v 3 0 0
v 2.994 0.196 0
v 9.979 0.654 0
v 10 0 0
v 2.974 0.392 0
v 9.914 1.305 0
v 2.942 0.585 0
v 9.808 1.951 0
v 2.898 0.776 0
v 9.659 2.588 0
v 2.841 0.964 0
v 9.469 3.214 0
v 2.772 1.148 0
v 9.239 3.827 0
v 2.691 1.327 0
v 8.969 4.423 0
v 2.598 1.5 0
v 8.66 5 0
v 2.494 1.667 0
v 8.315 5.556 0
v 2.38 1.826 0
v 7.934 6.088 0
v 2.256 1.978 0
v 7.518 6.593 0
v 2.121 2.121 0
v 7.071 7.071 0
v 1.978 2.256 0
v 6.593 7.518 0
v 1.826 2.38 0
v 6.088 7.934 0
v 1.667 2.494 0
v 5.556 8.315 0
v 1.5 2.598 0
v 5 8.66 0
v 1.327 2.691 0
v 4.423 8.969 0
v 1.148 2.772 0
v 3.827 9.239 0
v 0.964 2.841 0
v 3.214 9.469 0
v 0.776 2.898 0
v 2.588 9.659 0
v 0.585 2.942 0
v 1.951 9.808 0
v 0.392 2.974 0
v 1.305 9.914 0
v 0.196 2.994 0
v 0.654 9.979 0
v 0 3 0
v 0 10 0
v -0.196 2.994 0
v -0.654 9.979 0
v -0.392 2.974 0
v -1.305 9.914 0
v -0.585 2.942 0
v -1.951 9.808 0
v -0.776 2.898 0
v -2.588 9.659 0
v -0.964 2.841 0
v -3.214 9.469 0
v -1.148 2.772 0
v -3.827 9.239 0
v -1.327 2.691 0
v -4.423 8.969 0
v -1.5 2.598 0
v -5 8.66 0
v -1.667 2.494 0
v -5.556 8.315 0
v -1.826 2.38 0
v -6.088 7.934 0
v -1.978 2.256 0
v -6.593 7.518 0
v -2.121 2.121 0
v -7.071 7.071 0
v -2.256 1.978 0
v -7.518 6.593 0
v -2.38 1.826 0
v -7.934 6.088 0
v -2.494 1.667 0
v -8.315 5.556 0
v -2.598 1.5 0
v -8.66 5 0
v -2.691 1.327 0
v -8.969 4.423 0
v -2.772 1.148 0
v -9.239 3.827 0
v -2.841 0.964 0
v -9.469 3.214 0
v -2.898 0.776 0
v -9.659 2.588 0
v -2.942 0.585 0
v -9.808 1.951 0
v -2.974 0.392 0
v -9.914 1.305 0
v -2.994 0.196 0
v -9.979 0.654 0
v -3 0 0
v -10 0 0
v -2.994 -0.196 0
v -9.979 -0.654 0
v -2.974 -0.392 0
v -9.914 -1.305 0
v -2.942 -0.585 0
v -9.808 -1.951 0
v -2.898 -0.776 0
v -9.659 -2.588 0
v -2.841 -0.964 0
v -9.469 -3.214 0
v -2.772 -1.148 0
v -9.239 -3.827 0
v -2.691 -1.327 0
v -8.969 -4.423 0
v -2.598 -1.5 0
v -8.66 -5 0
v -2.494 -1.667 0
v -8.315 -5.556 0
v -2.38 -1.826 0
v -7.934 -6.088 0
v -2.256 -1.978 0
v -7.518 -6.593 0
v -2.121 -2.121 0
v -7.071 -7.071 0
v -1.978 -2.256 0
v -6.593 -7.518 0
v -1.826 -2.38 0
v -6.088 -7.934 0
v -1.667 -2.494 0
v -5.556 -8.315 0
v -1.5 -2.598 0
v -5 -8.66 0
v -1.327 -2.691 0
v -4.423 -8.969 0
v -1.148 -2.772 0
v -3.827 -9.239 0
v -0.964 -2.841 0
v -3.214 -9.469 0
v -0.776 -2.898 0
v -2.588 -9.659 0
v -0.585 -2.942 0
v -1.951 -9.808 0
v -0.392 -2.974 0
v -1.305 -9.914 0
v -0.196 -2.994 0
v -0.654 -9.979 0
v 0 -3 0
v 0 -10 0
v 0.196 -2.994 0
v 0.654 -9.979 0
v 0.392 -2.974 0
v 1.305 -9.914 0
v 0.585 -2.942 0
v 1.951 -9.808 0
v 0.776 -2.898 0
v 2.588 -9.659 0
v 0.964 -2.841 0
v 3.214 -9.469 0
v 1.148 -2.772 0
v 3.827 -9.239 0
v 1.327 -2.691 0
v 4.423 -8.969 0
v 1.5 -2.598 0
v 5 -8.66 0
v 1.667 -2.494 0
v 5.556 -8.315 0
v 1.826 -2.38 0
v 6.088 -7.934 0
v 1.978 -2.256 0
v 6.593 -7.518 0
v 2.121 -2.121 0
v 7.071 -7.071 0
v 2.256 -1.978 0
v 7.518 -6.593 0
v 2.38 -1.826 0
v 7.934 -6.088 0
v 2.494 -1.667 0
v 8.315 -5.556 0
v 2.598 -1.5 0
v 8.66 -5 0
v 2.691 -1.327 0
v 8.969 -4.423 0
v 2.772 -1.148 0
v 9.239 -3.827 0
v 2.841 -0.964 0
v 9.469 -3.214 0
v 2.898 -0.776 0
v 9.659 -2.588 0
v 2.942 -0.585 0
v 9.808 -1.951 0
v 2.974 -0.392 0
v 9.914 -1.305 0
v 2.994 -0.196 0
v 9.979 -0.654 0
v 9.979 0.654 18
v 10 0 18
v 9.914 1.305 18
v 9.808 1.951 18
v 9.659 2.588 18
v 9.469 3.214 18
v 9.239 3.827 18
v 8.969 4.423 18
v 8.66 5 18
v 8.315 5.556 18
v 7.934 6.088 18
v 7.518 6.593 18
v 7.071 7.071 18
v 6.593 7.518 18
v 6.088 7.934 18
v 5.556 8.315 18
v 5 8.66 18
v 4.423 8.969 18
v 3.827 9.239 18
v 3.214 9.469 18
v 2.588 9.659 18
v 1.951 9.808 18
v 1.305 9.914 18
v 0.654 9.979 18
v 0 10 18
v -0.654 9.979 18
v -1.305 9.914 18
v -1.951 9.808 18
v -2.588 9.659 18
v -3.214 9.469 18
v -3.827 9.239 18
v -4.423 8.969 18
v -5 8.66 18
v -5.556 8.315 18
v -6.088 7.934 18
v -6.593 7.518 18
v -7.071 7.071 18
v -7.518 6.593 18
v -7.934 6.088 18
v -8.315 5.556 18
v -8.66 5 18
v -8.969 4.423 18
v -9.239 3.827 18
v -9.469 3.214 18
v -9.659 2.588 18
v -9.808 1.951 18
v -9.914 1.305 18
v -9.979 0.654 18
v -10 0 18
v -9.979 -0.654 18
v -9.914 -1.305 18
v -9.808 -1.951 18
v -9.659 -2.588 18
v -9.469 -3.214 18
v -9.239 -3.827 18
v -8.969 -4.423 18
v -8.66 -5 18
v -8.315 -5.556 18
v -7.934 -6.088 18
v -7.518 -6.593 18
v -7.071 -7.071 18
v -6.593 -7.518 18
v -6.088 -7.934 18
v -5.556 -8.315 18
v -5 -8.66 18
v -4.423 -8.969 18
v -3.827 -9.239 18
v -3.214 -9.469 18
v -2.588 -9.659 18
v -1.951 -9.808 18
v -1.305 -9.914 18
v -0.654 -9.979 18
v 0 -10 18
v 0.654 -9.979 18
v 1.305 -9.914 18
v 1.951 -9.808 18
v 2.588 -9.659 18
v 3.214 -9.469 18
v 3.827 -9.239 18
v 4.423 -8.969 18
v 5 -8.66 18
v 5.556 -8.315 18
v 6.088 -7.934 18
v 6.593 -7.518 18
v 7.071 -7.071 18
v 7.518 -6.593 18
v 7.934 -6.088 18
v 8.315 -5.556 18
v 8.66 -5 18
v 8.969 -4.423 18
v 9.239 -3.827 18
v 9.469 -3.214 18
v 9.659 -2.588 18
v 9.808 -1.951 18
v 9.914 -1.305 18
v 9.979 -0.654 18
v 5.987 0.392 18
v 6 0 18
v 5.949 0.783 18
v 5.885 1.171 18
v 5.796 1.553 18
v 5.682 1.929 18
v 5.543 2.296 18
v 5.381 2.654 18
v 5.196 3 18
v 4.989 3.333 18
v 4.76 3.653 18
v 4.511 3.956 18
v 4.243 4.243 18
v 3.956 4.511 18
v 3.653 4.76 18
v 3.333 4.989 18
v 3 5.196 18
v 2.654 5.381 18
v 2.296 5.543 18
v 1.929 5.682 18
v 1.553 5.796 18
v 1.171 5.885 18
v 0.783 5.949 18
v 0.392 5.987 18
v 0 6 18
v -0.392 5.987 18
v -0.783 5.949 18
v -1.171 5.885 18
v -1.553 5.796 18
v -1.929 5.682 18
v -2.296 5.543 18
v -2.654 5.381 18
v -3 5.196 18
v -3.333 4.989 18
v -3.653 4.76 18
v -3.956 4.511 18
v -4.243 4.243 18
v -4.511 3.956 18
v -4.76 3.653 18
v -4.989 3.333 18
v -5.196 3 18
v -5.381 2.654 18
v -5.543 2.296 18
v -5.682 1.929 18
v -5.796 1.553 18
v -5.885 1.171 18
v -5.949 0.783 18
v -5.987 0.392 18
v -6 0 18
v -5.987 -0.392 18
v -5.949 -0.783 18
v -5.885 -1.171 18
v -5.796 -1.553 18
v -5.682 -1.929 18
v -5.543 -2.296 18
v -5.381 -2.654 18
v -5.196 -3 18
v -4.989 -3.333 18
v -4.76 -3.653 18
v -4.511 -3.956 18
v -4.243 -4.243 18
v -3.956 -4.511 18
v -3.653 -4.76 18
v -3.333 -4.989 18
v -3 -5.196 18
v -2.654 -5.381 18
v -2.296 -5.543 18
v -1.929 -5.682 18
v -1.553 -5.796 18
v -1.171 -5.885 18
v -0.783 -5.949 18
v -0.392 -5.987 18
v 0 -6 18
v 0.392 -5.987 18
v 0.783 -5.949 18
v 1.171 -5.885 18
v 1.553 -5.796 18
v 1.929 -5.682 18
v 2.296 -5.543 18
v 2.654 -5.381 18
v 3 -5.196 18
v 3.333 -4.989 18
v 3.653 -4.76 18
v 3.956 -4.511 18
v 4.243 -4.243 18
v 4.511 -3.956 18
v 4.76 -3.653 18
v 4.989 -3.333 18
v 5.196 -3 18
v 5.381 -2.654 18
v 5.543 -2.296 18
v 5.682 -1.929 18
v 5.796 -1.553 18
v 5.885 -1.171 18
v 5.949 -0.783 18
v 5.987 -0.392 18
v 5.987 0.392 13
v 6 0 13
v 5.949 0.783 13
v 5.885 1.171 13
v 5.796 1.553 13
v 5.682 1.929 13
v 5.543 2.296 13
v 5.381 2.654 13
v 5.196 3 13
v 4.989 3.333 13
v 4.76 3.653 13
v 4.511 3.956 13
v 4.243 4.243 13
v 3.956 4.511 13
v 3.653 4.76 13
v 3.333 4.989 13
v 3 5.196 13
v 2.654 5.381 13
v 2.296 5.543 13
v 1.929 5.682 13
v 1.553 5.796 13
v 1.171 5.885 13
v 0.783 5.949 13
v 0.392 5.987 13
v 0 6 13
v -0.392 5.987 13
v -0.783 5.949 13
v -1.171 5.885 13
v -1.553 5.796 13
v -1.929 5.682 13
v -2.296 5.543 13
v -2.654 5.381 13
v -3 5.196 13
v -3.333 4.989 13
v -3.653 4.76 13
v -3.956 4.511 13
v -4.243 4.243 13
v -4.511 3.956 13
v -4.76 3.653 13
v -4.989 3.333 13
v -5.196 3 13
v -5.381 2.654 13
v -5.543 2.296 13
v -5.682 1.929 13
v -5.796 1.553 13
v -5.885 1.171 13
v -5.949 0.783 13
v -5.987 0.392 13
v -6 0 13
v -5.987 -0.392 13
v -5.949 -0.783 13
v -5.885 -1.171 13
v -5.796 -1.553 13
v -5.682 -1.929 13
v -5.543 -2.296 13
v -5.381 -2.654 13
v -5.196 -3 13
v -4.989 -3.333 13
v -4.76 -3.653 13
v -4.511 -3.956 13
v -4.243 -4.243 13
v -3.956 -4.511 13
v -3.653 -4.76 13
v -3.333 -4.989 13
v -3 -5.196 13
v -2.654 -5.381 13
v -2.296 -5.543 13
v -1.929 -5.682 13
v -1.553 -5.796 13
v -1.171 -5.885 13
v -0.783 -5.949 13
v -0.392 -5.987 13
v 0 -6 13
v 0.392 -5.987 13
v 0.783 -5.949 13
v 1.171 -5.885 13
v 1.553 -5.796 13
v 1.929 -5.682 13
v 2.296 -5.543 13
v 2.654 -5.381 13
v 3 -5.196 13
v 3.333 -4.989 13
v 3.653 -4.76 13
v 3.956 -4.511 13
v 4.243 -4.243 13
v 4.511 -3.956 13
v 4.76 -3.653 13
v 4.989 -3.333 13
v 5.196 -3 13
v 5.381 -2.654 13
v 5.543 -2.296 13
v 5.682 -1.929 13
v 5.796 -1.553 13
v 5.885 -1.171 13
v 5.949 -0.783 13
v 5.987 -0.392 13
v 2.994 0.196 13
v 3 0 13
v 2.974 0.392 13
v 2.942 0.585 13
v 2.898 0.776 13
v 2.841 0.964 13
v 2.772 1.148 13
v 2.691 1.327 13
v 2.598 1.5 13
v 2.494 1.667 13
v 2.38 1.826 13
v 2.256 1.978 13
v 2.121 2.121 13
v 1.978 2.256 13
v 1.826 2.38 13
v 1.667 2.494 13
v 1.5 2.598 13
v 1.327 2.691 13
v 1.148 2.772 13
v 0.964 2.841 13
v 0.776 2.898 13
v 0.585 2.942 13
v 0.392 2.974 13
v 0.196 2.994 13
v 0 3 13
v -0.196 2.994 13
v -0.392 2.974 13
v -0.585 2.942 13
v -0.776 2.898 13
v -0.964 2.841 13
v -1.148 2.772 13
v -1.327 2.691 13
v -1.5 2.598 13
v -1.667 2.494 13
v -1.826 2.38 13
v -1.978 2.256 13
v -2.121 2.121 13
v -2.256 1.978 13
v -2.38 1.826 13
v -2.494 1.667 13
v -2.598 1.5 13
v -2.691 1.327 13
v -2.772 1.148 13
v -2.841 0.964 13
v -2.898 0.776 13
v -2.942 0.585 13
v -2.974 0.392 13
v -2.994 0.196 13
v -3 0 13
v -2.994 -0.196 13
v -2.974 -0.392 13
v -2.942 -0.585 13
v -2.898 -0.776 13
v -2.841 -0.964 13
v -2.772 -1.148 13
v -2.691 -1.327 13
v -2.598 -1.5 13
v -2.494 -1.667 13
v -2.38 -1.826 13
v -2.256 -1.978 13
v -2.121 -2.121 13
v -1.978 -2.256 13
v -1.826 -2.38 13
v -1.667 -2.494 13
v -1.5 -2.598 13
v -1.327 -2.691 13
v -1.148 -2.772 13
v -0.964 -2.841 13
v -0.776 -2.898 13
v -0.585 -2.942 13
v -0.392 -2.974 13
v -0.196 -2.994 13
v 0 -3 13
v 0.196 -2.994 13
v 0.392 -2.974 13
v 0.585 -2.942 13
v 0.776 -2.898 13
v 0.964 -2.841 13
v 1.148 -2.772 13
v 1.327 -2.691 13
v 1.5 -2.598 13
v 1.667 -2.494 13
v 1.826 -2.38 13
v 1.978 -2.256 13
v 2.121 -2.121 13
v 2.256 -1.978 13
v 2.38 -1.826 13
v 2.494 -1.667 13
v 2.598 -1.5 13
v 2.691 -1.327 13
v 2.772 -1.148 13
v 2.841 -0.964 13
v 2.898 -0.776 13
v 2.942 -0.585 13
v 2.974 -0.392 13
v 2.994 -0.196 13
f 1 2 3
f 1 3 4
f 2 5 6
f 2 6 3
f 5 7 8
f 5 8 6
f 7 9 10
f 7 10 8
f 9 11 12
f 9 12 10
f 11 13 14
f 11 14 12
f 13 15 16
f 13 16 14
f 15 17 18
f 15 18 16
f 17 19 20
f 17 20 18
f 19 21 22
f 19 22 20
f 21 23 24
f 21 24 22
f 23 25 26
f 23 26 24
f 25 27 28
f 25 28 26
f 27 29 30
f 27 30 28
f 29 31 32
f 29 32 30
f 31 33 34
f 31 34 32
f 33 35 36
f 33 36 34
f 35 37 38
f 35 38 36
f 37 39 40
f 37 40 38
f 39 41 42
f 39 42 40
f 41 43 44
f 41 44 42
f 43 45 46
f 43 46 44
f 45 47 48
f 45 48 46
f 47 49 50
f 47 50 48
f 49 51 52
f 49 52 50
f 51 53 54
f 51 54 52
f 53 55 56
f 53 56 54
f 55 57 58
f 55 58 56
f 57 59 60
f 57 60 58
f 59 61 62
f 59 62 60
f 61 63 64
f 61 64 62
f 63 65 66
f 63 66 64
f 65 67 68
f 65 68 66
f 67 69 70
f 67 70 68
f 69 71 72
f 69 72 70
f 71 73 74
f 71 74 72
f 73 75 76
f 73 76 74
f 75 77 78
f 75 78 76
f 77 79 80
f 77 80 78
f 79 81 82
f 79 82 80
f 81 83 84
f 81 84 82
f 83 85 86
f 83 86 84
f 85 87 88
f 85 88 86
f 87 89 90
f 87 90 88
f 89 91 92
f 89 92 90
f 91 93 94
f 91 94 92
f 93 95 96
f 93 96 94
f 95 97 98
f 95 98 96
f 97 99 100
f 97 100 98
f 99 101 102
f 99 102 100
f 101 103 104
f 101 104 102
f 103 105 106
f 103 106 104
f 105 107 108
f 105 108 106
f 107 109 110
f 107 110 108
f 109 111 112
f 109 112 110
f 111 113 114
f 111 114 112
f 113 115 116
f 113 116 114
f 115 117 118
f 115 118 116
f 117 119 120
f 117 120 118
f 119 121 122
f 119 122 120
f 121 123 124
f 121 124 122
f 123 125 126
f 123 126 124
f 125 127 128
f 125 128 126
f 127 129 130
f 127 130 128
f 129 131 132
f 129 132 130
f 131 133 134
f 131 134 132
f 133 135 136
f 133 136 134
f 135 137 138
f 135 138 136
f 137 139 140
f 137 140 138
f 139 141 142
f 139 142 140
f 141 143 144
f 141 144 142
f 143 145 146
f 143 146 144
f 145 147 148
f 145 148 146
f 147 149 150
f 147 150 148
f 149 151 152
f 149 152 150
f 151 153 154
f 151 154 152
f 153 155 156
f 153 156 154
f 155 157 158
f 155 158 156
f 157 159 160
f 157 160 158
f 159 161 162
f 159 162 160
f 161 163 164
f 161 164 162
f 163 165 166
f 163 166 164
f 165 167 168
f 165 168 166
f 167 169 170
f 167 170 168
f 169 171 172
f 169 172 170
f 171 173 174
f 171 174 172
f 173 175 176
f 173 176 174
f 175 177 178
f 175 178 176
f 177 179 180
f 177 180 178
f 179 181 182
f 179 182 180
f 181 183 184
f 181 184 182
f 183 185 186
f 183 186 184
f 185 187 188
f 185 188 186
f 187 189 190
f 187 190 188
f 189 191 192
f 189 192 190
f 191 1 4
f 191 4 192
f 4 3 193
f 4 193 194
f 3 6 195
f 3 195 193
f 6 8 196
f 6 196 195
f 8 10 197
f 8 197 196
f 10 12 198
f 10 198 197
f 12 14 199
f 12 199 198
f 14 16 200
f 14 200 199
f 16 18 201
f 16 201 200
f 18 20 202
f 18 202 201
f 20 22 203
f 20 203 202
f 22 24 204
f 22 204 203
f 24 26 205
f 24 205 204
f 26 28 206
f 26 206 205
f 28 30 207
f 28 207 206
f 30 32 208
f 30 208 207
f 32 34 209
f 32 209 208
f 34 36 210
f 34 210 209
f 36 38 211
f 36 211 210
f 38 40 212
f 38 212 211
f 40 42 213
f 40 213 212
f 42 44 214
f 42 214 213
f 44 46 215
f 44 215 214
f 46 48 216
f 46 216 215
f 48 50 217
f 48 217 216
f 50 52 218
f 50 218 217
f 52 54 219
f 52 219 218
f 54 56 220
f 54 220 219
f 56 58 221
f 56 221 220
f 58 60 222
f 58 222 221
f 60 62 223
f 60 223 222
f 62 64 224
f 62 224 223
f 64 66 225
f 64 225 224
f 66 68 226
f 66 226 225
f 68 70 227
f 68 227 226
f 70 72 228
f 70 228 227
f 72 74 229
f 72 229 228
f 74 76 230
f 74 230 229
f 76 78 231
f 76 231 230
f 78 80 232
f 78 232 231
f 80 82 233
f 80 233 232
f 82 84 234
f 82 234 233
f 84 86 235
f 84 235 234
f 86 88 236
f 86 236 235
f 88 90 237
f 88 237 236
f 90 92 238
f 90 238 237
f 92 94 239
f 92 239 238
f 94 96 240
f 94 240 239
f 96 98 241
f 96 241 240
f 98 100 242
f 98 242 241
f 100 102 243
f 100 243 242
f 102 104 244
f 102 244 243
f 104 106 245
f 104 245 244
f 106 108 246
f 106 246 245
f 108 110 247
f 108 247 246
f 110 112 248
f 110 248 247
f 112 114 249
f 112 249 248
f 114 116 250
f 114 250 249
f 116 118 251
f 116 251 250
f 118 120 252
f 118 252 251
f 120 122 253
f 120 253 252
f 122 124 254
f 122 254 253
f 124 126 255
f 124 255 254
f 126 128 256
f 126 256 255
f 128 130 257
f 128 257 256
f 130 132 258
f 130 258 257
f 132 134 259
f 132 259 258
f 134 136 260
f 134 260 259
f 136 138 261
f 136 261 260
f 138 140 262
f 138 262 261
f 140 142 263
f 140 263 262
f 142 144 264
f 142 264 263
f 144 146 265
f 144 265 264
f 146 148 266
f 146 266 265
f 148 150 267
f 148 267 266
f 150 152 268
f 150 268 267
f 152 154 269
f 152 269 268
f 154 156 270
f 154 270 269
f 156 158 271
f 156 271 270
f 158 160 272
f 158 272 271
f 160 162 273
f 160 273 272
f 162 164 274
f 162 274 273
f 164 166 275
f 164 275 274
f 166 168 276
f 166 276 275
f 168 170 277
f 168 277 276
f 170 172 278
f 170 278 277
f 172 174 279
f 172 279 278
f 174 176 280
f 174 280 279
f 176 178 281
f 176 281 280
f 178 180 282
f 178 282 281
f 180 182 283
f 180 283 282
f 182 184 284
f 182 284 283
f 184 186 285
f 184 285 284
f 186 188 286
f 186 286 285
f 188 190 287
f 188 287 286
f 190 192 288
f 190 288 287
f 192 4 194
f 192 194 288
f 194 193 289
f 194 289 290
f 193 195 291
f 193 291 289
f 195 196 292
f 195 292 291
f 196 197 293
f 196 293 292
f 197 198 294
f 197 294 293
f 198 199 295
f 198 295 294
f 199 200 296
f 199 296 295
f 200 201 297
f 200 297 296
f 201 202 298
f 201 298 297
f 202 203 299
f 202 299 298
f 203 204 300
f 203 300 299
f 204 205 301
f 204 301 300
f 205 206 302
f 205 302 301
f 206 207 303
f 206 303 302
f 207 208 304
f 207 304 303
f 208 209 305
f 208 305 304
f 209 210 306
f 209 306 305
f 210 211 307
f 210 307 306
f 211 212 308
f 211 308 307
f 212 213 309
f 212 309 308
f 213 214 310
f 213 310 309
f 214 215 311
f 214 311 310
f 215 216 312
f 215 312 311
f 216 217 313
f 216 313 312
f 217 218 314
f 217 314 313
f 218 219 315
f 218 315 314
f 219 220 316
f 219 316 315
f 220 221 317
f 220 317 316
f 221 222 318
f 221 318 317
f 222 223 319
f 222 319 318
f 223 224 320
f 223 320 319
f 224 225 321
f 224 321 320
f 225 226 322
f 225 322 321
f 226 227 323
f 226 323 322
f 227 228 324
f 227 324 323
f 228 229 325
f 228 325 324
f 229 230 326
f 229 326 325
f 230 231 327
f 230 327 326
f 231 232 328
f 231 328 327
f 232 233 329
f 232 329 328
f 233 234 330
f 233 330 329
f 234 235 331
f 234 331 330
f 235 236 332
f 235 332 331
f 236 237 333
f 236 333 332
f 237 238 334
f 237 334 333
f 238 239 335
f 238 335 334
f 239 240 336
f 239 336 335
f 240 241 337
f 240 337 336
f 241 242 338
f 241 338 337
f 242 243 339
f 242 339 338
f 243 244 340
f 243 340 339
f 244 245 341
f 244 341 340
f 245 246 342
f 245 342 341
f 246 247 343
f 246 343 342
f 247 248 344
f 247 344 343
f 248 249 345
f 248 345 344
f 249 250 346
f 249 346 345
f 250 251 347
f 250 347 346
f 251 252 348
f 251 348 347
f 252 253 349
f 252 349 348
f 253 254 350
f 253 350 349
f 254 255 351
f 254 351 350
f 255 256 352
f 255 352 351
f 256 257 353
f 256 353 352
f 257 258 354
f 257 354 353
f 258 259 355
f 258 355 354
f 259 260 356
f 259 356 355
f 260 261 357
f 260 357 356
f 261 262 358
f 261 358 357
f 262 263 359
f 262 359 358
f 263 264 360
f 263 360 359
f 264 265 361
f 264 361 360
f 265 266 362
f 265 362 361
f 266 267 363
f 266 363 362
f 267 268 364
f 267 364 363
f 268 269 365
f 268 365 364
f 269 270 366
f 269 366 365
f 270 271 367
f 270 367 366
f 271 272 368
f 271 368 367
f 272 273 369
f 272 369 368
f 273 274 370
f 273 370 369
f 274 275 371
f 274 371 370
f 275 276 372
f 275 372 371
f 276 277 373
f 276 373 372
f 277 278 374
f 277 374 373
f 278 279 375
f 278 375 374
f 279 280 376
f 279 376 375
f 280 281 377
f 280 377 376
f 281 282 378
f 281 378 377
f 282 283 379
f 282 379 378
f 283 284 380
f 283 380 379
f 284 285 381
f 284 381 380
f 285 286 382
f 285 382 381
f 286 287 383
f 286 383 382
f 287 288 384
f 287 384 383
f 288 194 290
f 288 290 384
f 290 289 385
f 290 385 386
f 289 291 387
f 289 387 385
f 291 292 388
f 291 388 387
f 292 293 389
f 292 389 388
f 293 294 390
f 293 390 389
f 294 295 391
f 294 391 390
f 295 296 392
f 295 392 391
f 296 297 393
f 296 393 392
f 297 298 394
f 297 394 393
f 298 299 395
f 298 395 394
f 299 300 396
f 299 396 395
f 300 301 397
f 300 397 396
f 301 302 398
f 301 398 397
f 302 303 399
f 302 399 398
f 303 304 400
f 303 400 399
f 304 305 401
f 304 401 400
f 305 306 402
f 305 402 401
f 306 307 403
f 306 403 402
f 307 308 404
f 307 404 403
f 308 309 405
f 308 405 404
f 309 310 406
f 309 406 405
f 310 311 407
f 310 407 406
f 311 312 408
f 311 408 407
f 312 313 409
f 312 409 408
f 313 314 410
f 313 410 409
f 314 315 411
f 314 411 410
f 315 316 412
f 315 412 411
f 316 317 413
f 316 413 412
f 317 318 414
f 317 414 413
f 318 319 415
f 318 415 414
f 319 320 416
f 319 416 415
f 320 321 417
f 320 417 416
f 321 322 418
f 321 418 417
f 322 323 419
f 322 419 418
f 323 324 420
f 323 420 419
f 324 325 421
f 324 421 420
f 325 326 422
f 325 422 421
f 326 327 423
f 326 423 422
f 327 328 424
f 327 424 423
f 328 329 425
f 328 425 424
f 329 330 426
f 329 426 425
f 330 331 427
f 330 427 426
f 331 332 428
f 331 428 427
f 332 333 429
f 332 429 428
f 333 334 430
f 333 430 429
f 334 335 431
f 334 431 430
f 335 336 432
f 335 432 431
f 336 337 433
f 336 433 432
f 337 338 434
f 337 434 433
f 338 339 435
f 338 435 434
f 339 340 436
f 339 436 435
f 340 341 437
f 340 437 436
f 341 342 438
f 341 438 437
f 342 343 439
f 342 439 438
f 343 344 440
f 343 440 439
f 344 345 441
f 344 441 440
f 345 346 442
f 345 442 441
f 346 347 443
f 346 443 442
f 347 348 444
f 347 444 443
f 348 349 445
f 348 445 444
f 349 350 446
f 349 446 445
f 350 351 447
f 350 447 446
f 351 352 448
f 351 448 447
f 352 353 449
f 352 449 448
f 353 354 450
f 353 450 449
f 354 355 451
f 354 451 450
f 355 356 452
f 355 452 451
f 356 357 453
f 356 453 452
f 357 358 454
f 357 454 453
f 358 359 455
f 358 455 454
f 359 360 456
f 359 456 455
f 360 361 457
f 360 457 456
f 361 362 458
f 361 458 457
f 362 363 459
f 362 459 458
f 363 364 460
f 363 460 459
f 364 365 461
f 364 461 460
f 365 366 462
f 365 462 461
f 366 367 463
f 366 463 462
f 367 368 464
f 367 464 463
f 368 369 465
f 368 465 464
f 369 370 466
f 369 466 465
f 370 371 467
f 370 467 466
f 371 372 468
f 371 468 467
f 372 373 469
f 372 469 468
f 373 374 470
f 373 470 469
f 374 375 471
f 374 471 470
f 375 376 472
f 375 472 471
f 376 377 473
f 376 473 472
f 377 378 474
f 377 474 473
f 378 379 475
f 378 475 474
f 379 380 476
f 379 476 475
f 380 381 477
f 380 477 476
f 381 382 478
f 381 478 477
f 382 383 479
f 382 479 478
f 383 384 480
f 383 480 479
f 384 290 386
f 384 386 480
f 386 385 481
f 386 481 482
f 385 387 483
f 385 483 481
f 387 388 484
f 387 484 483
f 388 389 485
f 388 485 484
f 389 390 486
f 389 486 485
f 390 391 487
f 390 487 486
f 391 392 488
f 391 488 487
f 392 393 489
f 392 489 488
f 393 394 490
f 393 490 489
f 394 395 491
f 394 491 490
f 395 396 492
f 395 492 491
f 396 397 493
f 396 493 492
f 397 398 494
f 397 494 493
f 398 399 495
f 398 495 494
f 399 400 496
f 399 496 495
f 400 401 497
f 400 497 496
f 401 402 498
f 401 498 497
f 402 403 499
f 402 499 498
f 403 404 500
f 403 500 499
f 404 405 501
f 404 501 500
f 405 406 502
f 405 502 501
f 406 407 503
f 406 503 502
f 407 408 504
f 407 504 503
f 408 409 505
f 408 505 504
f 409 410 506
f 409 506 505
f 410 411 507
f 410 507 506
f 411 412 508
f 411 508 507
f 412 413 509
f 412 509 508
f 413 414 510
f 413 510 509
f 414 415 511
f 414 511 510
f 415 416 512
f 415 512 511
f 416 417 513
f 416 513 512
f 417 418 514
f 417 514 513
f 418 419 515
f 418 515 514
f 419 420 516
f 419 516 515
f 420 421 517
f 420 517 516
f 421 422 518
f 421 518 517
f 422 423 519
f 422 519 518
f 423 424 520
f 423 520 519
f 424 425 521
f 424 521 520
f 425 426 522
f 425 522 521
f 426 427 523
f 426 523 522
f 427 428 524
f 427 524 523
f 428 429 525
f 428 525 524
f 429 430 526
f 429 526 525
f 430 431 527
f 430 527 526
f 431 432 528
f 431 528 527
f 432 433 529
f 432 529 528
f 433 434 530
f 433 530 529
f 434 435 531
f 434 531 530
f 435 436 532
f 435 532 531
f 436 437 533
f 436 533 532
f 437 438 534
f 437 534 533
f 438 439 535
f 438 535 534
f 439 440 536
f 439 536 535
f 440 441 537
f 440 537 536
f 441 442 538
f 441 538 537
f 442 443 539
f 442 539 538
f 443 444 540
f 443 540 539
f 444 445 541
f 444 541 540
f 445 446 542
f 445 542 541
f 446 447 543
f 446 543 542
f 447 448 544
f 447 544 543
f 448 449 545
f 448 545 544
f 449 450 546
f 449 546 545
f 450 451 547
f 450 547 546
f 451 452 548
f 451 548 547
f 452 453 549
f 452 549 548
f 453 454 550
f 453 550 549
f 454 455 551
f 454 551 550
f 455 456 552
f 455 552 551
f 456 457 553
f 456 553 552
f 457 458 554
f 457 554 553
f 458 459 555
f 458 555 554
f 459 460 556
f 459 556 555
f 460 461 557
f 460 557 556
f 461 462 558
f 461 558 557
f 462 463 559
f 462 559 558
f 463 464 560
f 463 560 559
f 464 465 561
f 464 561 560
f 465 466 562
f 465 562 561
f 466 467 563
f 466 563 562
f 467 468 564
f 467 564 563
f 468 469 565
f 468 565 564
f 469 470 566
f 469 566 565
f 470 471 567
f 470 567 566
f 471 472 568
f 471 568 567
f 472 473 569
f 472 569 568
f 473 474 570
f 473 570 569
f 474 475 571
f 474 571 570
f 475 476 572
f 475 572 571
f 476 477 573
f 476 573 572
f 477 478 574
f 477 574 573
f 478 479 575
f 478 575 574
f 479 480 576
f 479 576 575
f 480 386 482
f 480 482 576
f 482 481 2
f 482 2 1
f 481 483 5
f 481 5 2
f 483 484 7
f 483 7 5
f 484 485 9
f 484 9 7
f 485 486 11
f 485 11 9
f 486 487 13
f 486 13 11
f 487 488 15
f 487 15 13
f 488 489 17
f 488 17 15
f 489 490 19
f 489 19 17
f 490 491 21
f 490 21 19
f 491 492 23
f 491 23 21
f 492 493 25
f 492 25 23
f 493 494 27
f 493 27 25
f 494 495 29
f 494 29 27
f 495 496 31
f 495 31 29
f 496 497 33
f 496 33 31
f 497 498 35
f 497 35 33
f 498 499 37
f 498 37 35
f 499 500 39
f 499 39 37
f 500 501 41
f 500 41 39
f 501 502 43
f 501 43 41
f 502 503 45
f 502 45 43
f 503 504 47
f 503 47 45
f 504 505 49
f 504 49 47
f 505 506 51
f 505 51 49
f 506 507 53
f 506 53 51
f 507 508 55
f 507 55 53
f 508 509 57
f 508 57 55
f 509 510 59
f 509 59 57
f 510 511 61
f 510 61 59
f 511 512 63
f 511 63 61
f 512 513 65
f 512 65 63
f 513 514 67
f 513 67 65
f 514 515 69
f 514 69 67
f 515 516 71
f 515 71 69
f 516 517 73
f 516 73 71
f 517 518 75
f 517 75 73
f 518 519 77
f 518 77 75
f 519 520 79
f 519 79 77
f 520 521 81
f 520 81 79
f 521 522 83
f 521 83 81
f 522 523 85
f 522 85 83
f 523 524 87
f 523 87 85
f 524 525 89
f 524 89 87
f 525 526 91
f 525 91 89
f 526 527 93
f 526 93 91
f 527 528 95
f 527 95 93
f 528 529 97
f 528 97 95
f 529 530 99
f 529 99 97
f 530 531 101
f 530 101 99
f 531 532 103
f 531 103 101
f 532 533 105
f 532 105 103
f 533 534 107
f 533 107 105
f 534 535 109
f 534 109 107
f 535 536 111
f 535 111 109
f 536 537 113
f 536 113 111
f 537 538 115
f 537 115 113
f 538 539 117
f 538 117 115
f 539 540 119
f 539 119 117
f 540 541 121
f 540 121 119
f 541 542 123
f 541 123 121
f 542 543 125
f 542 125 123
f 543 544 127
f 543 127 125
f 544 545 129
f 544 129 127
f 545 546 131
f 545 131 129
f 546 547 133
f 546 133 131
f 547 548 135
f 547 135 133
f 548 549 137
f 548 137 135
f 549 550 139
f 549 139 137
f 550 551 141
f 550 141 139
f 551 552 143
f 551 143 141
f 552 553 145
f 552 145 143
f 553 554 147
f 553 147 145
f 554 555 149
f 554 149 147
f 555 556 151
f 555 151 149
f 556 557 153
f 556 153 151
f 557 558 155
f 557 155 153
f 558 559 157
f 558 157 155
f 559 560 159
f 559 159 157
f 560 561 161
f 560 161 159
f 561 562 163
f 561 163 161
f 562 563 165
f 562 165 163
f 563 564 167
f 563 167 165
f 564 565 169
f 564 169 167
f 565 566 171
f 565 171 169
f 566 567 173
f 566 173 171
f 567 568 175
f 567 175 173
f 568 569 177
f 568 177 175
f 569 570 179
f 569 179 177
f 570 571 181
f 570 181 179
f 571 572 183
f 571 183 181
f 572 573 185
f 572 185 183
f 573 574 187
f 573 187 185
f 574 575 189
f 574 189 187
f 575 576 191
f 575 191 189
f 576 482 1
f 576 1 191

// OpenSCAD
// Original MechIntel educational model. CC0-1.0. Units: mm.
// Not a standardized or load-rated component.
$fn=96;
// Section points: [radius, height], mm. Edit to change the profile.
section=[[3, 0], [10, 0], [10, 18], [6, 18], [6, 13], [3, 13]];
rotate_extrude($fn=96) polygon(points=section);
